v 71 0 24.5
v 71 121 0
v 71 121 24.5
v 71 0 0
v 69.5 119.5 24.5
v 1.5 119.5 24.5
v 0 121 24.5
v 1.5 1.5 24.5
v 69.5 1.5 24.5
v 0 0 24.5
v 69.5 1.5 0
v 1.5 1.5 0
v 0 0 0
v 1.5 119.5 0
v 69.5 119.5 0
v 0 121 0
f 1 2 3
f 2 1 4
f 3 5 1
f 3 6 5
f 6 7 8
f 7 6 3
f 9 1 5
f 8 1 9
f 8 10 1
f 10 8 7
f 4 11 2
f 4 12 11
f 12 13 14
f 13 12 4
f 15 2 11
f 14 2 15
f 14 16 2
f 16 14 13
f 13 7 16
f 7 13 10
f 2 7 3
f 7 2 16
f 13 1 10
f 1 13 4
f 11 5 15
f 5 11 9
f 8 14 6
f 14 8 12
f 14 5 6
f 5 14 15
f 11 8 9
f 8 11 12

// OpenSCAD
include <boardgame_insert_toolkit_lib.2.scad>;

// determines whether lids are output.
g_b_print_lid = true;

// determines whether boxes are output.
g_b_print_box = false; 

// Focus on one box
g_isolated_print_box = ""; 

// Used to visualize how all of the boxes fit together. 
g_b_visualization = false;          
        
// this is the outer wall thickness. 
//Default = 1.5mm
g_wall_thickness = 1.5;

// The tolerance value is extra space put between planes of the lid and box that fit together.
// Increase the tolerance to loosen the fit and decrease it to tighten it.
//
// Note that the tolerance is applied exclusively to the lid.
// So if the lid is too tight or too loose, change this value ( up for looser fit, down for tighter fit ) and 
// you only need to reprint the lid.
// 
// The exception is the stackable box, where the bottom of the box is the lid of the box below,
// in which case the tolerance also affects that box bottom.
//
g_tolerance = 0.15;

// This adjusts the position of the lid detents downward. 
// The larger the value, the bigger the gap between the lid and the box.
g_tolerance_detents_pos = 0.1;

data =
[  

    [   "bottom spacer",
        [
            [ BOX_SIZE_XYZ,[71, 121, 24.5] ],
            [ TYPE, SPACER]
                          
        ]
    ],
];


MakeAll();
